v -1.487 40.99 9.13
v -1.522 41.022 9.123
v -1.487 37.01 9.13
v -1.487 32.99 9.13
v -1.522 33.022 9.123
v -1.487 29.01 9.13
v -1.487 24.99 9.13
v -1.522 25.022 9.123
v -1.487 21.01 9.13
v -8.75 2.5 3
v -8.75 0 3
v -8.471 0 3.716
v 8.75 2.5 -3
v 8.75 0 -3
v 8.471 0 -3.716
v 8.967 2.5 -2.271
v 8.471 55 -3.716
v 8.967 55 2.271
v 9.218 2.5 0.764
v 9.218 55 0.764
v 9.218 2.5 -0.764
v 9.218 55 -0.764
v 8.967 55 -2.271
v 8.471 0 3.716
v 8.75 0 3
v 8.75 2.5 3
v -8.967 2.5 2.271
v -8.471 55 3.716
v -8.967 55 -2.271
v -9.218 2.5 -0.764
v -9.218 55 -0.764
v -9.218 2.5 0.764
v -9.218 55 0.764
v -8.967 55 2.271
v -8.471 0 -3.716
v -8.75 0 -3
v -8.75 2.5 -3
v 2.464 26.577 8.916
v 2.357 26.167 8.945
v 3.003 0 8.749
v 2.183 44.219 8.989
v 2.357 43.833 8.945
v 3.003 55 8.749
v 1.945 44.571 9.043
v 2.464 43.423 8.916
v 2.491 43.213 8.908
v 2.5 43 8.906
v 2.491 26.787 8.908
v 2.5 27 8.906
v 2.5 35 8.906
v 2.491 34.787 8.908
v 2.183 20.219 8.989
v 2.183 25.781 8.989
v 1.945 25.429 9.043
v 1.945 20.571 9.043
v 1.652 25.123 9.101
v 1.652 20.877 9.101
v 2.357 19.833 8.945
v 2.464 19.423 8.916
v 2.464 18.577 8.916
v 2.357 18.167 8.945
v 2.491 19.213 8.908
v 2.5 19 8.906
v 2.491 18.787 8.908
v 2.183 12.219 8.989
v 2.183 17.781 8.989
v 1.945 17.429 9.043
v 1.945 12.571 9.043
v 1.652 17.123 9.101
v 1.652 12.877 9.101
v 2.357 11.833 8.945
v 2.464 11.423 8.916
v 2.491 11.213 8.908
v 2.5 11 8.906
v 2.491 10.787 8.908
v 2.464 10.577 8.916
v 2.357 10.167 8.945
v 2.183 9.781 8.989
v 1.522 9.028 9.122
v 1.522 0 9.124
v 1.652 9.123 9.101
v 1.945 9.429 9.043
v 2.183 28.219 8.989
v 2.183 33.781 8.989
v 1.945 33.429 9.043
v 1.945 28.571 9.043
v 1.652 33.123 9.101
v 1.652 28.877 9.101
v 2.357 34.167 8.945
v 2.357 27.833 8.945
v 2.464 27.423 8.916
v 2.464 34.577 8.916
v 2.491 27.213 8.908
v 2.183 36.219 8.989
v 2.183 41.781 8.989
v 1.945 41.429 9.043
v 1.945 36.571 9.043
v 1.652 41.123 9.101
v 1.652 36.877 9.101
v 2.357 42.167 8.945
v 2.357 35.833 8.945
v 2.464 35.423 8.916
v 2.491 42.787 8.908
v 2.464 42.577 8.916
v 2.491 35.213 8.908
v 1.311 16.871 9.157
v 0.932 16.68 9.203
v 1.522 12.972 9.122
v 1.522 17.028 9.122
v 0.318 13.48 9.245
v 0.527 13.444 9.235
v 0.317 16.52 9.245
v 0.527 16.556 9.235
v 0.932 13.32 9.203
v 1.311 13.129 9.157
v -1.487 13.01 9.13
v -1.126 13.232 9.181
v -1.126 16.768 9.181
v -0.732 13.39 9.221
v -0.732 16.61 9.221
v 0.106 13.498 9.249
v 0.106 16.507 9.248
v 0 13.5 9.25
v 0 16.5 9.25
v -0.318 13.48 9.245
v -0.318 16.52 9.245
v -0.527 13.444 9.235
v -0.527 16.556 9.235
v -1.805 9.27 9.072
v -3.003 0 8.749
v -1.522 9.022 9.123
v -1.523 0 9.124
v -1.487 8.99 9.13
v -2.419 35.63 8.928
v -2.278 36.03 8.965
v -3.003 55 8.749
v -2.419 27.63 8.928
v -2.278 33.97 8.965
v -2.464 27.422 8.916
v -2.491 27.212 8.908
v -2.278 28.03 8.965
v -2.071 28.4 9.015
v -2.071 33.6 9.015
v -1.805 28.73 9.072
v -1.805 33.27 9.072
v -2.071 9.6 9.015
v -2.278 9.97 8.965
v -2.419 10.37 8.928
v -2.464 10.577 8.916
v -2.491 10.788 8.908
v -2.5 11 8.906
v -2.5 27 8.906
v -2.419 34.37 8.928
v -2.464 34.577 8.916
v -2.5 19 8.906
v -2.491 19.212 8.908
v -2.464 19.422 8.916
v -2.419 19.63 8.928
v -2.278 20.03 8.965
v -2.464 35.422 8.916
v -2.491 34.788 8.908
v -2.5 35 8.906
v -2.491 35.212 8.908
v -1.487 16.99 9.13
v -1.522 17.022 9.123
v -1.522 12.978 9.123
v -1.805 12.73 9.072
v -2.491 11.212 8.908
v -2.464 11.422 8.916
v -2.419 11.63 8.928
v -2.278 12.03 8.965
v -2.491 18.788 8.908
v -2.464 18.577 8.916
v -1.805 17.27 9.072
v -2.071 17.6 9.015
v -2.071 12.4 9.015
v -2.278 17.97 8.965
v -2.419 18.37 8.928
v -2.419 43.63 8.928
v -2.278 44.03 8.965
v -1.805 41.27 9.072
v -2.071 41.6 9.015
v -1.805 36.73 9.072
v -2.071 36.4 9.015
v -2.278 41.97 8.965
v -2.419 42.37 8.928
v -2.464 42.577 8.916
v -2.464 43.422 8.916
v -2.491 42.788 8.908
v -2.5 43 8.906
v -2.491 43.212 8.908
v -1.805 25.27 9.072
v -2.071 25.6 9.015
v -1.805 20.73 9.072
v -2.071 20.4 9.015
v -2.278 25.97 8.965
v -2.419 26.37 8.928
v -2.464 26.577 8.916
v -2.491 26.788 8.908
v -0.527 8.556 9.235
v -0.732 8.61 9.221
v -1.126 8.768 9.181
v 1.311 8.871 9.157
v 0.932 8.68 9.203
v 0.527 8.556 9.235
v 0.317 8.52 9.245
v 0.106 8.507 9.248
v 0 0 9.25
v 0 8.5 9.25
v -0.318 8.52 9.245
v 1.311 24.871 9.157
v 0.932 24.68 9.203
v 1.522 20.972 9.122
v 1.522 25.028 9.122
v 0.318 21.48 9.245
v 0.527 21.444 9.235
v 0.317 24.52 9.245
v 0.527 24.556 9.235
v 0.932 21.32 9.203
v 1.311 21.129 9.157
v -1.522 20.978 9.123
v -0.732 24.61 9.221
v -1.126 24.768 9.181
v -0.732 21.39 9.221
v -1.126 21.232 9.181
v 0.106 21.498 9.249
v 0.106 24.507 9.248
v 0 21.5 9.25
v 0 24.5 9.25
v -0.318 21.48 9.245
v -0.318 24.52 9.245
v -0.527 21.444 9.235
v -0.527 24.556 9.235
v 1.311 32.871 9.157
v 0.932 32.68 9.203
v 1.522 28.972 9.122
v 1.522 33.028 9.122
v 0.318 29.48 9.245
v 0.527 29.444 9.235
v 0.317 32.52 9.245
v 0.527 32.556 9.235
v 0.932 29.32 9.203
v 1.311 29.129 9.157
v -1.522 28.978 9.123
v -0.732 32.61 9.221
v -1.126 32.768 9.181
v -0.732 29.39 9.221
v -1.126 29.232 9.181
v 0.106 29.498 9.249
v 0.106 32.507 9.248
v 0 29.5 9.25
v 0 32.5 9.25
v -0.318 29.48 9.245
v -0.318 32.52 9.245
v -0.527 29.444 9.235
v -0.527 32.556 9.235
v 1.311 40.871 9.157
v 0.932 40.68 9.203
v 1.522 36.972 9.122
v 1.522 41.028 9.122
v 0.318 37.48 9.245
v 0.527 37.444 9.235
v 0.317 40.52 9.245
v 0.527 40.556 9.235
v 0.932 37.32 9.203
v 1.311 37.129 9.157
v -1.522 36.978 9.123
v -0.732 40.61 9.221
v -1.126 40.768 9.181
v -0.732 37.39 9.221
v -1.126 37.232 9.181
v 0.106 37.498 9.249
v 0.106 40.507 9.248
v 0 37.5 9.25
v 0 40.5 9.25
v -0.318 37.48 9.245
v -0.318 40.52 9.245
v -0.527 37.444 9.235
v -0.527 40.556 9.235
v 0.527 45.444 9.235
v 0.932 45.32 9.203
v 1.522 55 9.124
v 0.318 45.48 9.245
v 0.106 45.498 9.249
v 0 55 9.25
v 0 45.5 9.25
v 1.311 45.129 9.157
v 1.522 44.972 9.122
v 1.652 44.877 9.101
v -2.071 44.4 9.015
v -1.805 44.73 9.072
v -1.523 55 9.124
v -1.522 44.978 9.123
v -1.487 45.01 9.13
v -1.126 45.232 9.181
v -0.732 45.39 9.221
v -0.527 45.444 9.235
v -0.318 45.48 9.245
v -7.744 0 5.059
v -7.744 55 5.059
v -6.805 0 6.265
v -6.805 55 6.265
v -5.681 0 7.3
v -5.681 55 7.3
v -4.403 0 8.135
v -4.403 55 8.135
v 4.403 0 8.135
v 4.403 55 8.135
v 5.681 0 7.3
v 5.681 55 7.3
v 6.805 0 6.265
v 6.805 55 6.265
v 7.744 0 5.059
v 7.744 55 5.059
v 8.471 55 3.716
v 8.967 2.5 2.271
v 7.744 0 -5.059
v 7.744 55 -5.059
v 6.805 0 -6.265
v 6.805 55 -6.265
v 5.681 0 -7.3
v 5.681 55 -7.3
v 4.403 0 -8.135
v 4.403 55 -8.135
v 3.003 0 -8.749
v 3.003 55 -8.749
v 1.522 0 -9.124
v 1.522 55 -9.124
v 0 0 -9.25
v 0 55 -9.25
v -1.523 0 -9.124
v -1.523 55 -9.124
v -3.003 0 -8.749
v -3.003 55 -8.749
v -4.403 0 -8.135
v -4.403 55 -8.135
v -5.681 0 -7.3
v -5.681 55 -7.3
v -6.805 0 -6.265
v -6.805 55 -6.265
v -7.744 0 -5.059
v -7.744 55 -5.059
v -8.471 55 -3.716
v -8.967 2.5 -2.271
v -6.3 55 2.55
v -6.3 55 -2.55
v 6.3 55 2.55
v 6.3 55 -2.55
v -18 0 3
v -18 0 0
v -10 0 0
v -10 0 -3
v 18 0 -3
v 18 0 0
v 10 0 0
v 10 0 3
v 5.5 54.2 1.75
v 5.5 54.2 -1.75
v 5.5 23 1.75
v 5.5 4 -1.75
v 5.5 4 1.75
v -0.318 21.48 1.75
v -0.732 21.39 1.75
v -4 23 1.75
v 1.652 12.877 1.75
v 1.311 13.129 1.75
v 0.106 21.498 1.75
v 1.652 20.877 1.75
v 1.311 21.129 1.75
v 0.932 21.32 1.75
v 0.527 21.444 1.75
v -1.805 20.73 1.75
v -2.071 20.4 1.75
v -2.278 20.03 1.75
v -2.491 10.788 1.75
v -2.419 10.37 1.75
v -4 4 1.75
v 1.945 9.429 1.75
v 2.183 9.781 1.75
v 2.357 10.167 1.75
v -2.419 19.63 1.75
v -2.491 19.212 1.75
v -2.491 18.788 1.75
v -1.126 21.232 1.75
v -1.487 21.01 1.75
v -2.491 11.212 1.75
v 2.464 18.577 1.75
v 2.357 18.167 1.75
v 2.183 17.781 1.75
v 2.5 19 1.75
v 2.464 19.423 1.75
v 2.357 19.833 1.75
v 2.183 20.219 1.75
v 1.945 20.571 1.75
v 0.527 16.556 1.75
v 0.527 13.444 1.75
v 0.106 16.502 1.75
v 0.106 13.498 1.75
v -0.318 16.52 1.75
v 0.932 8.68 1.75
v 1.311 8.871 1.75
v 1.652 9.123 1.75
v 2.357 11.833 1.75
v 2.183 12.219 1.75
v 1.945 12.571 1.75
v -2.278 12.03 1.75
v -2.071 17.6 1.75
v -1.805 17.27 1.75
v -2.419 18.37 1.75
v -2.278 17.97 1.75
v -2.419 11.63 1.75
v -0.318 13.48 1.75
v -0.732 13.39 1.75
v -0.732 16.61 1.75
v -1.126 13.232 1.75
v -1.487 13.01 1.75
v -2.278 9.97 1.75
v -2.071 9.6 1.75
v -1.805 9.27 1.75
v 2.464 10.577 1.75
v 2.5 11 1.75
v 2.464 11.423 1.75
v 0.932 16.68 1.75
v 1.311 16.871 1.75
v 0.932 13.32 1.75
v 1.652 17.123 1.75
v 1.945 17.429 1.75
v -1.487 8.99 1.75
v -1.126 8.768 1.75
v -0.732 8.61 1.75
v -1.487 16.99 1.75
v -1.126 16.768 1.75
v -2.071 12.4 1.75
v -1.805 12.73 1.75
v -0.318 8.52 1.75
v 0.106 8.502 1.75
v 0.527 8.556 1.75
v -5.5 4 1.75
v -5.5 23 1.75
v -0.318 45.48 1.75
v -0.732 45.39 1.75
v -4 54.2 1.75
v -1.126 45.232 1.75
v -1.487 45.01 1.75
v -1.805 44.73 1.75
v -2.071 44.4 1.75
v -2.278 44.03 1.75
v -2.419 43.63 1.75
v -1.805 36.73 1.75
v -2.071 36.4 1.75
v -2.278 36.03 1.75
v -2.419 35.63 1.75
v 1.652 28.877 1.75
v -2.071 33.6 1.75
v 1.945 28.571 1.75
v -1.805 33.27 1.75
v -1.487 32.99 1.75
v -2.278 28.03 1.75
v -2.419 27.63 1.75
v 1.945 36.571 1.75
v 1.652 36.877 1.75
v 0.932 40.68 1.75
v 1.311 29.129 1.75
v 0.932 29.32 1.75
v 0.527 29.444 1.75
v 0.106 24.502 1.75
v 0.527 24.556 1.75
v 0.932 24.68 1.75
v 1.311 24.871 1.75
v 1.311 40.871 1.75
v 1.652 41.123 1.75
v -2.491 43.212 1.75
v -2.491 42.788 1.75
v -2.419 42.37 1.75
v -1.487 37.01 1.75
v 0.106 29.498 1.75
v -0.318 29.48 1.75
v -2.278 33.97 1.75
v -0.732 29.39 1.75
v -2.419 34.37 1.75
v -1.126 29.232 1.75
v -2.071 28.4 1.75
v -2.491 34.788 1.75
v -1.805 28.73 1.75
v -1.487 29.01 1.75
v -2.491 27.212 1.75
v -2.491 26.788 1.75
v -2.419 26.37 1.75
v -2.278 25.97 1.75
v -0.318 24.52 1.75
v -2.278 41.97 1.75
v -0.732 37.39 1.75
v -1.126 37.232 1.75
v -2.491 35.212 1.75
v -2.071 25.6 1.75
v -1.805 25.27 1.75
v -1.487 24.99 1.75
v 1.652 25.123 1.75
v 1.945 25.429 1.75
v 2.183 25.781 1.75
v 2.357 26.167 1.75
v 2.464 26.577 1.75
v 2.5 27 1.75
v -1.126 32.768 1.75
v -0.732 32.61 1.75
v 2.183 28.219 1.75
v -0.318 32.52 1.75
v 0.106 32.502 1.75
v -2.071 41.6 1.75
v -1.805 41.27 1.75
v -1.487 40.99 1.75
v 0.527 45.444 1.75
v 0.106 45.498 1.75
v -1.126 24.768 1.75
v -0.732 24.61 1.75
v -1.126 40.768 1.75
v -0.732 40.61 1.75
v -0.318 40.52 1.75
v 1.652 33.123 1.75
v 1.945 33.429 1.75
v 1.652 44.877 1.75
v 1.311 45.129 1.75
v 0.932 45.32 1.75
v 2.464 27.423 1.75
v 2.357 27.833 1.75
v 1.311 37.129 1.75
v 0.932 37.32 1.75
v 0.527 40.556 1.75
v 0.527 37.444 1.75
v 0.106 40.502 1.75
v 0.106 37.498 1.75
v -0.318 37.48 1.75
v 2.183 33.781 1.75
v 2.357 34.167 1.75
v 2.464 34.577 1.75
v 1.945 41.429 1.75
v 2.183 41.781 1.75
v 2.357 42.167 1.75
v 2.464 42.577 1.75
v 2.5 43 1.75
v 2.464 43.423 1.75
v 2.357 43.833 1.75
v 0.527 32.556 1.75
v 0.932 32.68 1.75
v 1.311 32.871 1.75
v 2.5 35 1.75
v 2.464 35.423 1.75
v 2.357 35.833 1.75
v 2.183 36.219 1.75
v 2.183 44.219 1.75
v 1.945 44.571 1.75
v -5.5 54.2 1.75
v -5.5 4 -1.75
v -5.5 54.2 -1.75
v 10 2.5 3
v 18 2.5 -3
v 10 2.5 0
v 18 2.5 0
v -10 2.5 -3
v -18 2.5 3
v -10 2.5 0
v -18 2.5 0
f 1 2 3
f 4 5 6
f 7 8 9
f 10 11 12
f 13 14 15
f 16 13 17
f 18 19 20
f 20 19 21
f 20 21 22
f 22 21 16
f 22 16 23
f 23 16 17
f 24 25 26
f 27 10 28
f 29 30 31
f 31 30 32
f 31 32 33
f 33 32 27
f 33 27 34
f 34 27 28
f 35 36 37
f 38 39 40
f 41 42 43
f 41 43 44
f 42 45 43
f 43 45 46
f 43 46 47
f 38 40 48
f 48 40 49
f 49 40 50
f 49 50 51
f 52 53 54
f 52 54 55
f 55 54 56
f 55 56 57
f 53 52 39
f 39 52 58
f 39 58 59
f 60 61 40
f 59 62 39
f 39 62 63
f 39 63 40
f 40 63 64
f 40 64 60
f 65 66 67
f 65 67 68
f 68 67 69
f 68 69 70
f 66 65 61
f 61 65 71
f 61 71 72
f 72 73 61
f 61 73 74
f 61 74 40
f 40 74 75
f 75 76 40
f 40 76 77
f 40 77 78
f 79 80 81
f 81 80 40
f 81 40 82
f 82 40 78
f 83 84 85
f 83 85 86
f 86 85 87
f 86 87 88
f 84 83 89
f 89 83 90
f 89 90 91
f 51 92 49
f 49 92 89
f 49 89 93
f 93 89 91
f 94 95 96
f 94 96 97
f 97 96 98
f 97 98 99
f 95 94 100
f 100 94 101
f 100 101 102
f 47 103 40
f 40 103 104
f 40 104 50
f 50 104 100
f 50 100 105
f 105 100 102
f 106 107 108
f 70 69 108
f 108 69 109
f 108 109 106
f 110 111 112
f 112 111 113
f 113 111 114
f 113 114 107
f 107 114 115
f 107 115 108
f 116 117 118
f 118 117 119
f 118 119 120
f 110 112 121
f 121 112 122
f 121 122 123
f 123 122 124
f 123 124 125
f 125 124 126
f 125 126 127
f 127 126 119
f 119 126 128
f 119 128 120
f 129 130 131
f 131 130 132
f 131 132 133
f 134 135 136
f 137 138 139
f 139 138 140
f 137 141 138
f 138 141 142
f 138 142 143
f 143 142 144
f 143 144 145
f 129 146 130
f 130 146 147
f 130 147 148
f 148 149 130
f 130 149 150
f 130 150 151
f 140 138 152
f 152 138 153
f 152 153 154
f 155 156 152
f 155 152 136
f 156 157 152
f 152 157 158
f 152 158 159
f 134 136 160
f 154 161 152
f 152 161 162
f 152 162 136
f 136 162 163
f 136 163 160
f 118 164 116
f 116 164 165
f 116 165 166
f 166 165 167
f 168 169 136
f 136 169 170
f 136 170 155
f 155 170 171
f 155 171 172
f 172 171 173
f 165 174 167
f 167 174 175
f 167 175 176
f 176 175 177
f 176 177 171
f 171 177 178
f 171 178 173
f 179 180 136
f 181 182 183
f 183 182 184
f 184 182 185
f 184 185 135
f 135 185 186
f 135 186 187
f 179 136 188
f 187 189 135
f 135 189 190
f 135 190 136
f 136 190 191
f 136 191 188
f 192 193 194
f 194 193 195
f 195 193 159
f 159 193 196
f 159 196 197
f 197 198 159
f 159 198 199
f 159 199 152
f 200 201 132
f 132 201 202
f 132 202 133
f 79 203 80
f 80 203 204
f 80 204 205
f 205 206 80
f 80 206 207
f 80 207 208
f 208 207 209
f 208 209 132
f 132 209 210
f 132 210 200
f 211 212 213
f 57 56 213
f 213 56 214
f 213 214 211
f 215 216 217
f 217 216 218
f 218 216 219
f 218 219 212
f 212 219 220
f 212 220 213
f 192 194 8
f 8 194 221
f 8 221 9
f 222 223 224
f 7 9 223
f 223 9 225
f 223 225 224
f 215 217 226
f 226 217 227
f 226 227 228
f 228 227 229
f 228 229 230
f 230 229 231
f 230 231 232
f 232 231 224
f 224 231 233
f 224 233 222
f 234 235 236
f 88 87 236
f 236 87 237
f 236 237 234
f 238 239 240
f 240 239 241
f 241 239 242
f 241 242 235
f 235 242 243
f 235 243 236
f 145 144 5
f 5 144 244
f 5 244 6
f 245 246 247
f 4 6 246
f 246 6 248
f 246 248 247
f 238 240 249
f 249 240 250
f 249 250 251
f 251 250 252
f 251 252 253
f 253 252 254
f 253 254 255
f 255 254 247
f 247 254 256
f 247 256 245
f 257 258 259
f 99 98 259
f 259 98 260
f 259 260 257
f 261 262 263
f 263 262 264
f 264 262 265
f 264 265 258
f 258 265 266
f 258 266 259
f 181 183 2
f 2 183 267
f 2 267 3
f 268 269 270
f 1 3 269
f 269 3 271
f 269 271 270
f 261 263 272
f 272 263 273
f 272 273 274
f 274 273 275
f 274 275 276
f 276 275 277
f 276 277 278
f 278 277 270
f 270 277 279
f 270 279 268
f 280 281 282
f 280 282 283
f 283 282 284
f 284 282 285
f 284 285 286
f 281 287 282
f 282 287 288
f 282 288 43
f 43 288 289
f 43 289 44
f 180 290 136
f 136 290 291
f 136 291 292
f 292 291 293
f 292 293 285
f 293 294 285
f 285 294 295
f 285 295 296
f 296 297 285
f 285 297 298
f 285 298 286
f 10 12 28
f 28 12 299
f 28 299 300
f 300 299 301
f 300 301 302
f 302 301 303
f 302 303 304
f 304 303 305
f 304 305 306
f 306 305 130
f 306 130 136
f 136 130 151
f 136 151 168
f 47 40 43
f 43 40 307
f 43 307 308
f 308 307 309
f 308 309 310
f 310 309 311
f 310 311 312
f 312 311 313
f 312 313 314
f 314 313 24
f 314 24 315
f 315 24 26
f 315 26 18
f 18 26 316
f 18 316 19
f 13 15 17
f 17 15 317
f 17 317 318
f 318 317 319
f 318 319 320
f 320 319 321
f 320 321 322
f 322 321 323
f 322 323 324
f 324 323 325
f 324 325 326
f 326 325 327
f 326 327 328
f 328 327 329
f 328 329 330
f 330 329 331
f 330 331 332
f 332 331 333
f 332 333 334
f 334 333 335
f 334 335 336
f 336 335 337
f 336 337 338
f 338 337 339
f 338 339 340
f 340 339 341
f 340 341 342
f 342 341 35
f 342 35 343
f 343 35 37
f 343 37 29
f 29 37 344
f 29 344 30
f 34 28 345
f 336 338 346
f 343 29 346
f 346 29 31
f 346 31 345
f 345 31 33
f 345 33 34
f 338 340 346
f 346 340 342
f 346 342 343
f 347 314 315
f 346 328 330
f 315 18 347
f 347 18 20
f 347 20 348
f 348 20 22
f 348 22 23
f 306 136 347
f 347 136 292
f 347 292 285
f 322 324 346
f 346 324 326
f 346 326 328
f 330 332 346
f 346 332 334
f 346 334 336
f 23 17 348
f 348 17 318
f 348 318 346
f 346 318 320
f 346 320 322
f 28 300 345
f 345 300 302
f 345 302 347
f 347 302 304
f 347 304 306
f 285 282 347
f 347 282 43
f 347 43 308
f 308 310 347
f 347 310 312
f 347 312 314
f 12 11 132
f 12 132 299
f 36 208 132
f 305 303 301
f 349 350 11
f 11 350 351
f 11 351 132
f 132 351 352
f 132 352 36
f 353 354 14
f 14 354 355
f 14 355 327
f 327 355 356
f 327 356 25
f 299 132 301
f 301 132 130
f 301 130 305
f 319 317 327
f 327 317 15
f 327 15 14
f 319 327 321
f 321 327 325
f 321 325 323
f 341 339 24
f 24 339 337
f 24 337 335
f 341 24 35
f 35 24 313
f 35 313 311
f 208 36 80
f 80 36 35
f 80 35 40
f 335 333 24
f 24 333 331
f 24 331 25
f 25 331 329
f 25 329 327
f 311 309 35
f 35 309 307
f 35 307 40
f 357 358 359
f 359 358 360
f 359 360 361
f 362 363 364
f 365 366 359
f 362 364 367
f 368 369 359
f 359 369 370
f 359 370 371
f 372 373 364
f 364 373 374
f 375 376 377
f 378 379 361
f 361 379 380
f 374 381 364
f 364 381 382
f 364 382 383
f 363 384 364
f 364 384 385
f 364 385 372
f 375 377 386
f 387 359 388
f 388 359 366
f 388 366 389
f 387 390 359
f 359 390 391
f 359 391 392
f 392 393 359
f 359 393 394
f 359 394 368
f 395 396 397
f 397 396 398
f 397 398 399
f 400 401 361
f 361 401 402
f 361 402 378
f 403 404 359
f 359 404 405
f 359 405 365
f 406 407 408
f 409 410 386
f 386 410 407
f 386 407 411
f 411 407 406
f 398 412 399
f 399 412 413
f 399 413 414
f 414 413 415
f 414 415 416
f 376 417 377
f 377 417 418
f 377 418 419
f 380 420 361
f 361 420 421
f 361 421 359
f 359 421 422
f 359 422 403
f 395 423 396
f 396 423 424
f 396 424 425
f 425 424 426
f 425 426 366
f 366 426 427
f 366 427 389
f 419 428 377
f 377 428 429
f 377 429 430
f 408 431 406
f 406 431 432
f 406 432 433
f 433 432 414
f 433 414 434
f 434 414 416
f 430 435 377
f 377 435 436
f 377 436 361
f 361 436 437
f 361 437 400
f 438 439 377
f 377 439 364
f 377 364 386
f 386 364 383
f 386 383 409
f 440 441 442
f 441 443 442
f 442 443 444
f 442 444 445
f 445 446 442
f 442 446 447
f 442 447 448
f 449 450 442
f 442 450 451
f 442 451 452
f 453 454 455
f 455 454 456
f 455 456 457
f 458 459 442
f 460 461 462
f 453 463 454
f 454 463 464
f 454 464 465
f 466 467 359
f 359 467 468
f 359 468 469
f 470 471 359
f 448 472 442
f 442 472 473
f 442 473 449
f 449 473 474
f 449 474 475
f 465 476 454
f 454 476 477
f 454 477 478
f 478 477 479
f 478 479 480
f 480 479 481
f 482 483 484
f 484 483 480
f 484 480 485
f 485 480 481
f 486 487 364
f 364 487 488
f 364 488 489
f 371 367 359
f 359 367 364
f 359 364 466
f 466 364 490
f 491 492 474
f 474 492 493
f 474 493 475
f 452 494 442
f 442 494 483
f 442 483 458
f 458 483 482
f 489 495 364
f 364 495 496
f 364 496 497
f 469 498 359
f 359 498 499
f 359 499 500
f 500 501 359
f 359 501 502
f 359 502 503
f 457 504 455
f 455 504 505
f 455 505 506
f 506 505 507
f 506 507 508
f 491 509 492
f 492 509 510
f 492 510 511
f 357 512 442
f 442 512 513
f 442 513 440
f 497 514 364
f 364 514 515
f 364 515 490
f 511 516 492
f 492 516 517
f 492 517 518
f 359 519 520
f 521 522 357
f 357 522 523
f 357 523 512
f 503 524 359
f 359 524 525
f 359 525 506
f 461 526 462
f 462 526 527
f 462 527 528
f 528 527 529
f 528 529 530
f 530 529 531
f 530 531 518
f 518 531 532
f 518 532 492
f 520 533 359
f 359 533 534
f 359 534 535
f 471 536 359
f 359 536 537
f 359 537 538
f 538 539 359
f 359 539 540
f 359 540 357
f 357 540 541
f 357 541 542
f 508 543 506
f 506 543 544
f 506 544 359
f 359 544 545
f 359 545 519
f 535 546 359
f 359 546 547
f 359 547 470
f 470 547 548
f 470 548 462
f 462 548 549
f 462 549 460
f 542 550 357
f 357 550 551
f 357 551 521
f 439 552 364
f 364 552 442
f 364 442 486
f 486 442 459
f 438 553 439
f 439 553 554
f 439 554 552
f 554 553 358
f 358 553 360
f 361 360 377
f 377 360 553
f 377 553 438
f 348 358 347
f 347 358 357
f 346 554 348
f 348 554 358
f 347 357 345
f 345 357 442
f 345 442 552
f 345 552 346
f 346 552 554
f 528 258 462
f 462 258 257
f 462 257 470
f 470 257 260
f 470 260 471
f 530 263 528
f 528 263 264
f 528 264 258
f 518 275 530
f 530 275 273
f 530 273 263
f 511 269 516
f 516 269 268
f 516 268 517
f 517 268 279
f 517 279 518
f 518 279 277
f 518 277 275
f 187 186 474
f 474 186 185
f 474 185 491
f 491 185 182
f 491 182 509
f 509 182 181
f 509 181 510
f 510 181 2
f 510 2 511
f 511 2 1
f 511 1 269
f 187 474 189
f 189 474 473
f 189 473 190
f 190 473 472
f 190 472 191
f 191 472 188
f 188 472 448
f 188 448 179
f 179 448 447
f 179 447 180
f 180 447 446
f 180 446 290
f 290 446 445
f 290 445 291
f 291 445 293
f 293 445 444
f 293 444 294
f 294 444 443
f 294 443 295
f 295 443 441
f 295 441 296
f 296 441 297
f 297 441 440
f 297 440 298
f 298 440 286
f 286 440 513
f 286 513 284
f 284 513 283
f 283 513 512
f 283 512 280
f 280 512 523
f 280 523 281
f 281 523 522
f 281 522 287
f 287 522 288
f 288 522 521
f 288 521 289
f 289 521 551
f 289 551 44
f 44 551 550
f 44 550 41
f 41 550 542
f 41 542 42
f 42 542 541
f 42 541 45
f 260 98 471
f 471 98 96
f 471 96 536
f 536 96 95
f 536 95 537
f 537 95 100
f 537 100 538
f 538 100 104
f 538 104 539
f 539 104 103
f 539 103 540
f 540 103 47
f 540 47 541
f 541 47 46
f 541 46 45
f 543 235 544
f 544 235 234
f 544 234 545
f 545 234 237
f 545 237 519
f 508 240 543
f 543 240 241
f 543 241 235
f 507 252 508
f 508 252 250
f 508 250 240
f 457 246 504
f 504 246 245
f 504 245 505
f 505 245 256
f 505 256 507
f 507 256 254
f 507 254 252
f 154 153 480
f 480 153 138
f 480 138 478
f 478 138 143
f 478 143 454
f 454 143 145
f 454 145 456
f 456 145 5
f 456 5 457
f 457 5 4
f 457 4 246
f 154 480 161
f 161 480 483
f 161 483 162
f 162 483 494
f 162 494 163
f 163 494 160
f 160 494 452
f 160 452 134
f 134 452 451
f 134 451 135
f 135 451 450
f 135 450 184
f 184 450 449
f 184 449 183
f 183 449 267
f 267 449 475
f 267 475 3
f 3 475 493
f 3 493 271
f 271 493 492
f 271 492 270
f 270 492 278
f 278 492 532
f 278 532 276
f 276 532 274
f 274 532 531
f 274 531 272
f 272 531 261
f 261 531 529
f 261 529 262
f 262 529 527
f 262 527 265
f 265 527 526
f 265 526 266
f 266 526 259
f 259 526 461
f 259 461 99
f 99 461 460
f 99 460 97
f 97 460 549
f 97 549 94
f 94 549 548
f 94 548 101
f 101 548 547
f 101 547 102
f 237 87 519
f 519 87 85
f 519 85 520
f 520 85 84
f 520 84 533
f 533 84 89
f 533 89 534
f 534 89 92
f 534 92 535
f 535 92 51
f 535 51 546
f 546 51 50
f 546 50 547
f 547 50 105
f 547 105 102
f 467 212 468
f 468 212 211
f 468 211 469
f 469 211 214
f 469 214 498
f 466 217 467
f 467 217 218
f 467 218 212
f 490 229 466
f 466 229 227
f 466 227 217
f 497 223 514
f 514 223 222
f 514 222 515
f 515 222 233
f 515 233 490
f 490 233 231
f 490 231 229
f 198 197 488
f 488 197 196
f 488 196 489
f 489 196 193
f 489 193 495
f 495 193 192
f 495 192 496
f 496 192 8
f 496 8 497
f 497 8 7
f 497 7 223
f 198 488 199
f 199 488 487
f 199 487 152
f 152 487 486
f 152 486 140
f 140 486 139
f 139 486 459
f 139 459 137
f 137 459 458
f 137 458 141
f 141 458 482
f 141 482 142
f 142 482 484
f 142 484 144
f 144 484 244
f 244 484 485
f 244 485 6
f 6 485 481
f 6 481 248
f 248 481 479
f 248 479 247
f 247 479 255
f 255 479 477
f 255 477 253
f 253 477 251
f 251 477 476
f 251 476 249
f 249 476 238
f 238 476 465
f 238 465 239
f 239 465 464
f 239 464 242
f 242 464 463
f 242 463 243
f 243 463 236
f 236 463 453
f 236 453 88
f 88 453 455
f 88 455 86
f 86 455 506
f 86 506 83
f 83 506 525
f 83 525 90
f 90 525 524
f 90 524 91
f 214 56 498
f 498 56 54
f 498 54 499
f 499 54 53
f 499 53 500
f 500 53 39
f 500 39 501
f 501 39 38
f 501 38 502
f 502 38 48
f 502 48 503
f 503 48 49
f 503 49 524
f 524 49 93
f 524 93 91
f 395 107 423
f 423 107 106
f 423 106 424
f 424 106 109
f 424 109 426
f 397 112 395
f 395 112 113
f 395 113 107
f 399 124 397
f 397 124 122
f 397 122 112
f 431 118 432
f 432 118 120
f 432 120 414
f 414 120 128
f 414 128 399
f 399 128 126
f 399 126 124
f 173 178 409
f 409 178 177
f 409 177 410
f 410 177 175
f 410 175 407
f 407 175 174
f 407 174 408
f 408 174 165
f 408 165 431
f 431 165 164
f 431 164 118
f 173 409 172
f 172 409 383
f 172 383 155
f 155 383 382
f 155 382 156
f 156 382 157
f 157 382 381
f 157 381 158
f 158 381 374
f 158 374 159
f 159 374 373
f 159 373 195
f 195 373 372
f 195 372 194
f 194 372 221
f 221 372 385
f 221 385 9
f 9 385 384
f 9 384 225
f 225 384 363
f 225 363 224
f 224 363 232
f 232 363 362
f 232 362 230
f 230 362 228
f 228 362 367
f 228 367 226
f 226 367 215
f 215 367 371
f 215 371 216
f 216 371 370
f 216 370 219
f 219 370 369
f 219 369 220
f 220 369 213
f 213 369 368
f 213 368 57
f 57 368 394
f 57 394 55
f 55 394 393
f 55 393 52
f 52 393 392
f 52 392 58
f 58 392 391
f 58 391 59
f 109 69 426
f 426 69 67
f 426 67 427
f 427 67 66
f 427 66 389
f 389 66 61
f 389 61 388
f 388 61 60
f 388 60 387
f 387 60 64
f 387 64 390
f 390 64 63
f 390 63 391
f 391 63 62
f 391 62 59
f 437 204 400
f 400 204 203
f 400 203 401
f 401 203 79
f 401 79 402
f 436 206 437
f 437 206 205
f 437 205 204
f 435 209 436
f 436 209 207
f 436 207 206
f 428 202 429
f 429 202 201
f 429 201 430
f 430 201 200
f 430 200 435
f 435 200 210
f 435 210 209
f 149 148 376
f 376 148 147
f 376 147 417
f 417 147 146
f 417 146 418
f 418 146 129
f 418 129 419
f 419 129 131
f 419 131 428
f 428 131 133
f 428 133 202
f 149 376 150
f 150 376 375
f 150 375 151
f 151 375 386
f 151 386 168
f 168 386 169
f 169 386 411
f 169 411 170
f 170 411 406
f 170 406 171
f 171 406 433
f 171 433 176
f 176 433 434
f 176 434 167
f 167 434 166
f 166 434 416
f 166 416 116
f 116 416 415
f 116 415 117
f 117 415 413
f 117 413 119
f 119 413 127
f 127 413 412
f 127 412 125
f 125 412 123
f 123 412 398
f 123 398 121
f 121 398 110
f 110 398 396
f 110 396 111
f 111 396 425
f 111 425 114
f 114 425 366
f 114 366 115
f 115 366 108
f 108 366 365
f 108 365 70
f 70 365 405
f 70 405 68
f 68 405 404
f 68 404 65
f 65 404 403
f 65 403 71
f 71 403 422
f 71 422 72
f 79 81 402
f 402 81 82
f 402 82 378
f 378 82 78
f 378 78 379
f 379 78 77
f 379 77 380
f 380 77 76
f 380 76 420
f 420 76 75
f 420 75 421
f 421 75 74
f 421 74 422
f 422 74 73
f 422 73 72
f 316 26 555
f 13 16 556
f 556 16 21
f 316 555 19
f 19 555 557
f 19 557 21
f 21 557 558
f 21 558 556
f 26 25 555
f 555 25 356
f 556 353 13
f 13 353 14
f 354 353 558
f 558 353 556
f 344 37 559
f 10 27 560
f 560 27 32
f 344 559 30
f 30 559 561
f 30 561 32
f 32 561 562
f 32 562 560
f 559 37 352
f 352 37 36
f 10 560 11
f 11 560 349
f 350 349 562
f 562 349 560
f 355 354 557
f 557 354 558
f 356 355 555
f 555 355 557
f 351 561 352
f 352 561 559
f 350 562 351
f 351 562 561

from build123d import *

# Parameters (mm, degrees)
SKETCH1_R           = 9.25
BOSS_EXTRUDE1_DEPTH = 55
SKETCH2_W           = 11
SKETCH2_H           = 3.5
CUT_EXTRUDE1_DEPTH  = 51
CHAMFER1_SIZE       = 0.8
SKETCH3_R           = 2.5
CUT_EXTRUDE2_DEPTH  = 10
SKETCH5_W           = 6
SKETCH5_H           = 2.5
BOSS_EXTRUDE2_DEPTH = 20
SKETCH6_W           = 6
SKETCH6_H           = 2.5
BOSS_EXTRUDE3_DEPTH = 10
SKETCH8_W           = 8
SKETCH8_H           = 3
CUT_EXTRUDE3_DEPTH  = 10


with BuildPart() as part:
    # Sketch1 → Boss-Extrude1 (new body)
    with BuildSketch(Plane(origin=(0, 0, 0), x_dir=(1, 0, 0), z_dir=(0, 1, 0))):
        with Locations(Location((0, 0, 0), (0, 0, 270))):
            Circle(SKETCH1_R)
    extrude(amount=BOSS_EXTRUDE1_DEPTH)

    # Sketch2 → Cut-Extrude1 (cut)
    with BuildSketch(Plane(origin=(0, 55, 0), x_dir=(1, 0, 0), z_dir=(0, 1, 0))):
        Rectangle(SKETCH2_W, SKETCH2_H)
    extrude(amount=-CUT_EXTRUDE1_DEPTH, mode=Mode.SUBTRACT)

    # Chamfer1
    chamfer1_edges = [part.edges().sort_by_distance(p)[0] for p in [
        (5.5, 55, 0),
        (0, 55, -1.75),
        (-5.5, 55, 0),
        (0, 55, 1.75),
    ]]
    chamfer(chamfer1_edges, length=CHAMFER1_SIZE)

    # Sketch3 → Cut-Extrude2 (cut)
    with BuildSketch(Plane.XY.offset(10)):
        with Locations((0, 43)):
            Circle(SKETCH3_R)
        with Locations((0, 35)):
            Circle(SKETCH3_R)
        with Locations((0, 27)):
            Circle(SKETCH3_R)
        with Locations((0, 19)):
            Circle(SKETCH3_R)
        with Locations((0, 11)):
            Circle(SKETCH3_R)
    extrude(amount=-CUT_EXTRUDE2_DEPTH, mode=Mode.SUBTRACT)

    # Sketch5 → Boss-Extrude2 (add)
    with BuildSketch(Plane(origin=(18, 0, 0), x_dir=(0, 0, -1), z_dir=(1, 0, 0))):
        with Locations((0, 1.25)):
            Rectangle(SKETCH5_W, SKETCH5_H)
    extrude(amount=-BOSS_EXTRUDE2_DEPTH)

    # Sketch6 → Boss-Extrude3 (add)
    with BuildSketch(Plane(origin=(-18, 0, 0), x_dir=(0, 0, -1), z_dir=(1, 0, 0))):
        with Locations((0, 1.25)):
            Rectangle(SKETCH6_W, SKETCH6_H)
    extrude(amount=BOSS_EXTRUDE3_DEPTH)

    # Sketch8 → Cut-Extrude3 (cut)
    with BuildSketch(Plane.XZ):
        with Locations((14, 1.5)):
            Rectangle(SKETCH8_W, SKETCH8_H)
        with Locations((-14, -1.5)):
            Rectangle(SKETCH8_W, SKETCH8_H)
    extrude(amount=-CUT_EXTRUDE3_DEPTH, mode=Mode.SUBTRACT)


solid = part.part
